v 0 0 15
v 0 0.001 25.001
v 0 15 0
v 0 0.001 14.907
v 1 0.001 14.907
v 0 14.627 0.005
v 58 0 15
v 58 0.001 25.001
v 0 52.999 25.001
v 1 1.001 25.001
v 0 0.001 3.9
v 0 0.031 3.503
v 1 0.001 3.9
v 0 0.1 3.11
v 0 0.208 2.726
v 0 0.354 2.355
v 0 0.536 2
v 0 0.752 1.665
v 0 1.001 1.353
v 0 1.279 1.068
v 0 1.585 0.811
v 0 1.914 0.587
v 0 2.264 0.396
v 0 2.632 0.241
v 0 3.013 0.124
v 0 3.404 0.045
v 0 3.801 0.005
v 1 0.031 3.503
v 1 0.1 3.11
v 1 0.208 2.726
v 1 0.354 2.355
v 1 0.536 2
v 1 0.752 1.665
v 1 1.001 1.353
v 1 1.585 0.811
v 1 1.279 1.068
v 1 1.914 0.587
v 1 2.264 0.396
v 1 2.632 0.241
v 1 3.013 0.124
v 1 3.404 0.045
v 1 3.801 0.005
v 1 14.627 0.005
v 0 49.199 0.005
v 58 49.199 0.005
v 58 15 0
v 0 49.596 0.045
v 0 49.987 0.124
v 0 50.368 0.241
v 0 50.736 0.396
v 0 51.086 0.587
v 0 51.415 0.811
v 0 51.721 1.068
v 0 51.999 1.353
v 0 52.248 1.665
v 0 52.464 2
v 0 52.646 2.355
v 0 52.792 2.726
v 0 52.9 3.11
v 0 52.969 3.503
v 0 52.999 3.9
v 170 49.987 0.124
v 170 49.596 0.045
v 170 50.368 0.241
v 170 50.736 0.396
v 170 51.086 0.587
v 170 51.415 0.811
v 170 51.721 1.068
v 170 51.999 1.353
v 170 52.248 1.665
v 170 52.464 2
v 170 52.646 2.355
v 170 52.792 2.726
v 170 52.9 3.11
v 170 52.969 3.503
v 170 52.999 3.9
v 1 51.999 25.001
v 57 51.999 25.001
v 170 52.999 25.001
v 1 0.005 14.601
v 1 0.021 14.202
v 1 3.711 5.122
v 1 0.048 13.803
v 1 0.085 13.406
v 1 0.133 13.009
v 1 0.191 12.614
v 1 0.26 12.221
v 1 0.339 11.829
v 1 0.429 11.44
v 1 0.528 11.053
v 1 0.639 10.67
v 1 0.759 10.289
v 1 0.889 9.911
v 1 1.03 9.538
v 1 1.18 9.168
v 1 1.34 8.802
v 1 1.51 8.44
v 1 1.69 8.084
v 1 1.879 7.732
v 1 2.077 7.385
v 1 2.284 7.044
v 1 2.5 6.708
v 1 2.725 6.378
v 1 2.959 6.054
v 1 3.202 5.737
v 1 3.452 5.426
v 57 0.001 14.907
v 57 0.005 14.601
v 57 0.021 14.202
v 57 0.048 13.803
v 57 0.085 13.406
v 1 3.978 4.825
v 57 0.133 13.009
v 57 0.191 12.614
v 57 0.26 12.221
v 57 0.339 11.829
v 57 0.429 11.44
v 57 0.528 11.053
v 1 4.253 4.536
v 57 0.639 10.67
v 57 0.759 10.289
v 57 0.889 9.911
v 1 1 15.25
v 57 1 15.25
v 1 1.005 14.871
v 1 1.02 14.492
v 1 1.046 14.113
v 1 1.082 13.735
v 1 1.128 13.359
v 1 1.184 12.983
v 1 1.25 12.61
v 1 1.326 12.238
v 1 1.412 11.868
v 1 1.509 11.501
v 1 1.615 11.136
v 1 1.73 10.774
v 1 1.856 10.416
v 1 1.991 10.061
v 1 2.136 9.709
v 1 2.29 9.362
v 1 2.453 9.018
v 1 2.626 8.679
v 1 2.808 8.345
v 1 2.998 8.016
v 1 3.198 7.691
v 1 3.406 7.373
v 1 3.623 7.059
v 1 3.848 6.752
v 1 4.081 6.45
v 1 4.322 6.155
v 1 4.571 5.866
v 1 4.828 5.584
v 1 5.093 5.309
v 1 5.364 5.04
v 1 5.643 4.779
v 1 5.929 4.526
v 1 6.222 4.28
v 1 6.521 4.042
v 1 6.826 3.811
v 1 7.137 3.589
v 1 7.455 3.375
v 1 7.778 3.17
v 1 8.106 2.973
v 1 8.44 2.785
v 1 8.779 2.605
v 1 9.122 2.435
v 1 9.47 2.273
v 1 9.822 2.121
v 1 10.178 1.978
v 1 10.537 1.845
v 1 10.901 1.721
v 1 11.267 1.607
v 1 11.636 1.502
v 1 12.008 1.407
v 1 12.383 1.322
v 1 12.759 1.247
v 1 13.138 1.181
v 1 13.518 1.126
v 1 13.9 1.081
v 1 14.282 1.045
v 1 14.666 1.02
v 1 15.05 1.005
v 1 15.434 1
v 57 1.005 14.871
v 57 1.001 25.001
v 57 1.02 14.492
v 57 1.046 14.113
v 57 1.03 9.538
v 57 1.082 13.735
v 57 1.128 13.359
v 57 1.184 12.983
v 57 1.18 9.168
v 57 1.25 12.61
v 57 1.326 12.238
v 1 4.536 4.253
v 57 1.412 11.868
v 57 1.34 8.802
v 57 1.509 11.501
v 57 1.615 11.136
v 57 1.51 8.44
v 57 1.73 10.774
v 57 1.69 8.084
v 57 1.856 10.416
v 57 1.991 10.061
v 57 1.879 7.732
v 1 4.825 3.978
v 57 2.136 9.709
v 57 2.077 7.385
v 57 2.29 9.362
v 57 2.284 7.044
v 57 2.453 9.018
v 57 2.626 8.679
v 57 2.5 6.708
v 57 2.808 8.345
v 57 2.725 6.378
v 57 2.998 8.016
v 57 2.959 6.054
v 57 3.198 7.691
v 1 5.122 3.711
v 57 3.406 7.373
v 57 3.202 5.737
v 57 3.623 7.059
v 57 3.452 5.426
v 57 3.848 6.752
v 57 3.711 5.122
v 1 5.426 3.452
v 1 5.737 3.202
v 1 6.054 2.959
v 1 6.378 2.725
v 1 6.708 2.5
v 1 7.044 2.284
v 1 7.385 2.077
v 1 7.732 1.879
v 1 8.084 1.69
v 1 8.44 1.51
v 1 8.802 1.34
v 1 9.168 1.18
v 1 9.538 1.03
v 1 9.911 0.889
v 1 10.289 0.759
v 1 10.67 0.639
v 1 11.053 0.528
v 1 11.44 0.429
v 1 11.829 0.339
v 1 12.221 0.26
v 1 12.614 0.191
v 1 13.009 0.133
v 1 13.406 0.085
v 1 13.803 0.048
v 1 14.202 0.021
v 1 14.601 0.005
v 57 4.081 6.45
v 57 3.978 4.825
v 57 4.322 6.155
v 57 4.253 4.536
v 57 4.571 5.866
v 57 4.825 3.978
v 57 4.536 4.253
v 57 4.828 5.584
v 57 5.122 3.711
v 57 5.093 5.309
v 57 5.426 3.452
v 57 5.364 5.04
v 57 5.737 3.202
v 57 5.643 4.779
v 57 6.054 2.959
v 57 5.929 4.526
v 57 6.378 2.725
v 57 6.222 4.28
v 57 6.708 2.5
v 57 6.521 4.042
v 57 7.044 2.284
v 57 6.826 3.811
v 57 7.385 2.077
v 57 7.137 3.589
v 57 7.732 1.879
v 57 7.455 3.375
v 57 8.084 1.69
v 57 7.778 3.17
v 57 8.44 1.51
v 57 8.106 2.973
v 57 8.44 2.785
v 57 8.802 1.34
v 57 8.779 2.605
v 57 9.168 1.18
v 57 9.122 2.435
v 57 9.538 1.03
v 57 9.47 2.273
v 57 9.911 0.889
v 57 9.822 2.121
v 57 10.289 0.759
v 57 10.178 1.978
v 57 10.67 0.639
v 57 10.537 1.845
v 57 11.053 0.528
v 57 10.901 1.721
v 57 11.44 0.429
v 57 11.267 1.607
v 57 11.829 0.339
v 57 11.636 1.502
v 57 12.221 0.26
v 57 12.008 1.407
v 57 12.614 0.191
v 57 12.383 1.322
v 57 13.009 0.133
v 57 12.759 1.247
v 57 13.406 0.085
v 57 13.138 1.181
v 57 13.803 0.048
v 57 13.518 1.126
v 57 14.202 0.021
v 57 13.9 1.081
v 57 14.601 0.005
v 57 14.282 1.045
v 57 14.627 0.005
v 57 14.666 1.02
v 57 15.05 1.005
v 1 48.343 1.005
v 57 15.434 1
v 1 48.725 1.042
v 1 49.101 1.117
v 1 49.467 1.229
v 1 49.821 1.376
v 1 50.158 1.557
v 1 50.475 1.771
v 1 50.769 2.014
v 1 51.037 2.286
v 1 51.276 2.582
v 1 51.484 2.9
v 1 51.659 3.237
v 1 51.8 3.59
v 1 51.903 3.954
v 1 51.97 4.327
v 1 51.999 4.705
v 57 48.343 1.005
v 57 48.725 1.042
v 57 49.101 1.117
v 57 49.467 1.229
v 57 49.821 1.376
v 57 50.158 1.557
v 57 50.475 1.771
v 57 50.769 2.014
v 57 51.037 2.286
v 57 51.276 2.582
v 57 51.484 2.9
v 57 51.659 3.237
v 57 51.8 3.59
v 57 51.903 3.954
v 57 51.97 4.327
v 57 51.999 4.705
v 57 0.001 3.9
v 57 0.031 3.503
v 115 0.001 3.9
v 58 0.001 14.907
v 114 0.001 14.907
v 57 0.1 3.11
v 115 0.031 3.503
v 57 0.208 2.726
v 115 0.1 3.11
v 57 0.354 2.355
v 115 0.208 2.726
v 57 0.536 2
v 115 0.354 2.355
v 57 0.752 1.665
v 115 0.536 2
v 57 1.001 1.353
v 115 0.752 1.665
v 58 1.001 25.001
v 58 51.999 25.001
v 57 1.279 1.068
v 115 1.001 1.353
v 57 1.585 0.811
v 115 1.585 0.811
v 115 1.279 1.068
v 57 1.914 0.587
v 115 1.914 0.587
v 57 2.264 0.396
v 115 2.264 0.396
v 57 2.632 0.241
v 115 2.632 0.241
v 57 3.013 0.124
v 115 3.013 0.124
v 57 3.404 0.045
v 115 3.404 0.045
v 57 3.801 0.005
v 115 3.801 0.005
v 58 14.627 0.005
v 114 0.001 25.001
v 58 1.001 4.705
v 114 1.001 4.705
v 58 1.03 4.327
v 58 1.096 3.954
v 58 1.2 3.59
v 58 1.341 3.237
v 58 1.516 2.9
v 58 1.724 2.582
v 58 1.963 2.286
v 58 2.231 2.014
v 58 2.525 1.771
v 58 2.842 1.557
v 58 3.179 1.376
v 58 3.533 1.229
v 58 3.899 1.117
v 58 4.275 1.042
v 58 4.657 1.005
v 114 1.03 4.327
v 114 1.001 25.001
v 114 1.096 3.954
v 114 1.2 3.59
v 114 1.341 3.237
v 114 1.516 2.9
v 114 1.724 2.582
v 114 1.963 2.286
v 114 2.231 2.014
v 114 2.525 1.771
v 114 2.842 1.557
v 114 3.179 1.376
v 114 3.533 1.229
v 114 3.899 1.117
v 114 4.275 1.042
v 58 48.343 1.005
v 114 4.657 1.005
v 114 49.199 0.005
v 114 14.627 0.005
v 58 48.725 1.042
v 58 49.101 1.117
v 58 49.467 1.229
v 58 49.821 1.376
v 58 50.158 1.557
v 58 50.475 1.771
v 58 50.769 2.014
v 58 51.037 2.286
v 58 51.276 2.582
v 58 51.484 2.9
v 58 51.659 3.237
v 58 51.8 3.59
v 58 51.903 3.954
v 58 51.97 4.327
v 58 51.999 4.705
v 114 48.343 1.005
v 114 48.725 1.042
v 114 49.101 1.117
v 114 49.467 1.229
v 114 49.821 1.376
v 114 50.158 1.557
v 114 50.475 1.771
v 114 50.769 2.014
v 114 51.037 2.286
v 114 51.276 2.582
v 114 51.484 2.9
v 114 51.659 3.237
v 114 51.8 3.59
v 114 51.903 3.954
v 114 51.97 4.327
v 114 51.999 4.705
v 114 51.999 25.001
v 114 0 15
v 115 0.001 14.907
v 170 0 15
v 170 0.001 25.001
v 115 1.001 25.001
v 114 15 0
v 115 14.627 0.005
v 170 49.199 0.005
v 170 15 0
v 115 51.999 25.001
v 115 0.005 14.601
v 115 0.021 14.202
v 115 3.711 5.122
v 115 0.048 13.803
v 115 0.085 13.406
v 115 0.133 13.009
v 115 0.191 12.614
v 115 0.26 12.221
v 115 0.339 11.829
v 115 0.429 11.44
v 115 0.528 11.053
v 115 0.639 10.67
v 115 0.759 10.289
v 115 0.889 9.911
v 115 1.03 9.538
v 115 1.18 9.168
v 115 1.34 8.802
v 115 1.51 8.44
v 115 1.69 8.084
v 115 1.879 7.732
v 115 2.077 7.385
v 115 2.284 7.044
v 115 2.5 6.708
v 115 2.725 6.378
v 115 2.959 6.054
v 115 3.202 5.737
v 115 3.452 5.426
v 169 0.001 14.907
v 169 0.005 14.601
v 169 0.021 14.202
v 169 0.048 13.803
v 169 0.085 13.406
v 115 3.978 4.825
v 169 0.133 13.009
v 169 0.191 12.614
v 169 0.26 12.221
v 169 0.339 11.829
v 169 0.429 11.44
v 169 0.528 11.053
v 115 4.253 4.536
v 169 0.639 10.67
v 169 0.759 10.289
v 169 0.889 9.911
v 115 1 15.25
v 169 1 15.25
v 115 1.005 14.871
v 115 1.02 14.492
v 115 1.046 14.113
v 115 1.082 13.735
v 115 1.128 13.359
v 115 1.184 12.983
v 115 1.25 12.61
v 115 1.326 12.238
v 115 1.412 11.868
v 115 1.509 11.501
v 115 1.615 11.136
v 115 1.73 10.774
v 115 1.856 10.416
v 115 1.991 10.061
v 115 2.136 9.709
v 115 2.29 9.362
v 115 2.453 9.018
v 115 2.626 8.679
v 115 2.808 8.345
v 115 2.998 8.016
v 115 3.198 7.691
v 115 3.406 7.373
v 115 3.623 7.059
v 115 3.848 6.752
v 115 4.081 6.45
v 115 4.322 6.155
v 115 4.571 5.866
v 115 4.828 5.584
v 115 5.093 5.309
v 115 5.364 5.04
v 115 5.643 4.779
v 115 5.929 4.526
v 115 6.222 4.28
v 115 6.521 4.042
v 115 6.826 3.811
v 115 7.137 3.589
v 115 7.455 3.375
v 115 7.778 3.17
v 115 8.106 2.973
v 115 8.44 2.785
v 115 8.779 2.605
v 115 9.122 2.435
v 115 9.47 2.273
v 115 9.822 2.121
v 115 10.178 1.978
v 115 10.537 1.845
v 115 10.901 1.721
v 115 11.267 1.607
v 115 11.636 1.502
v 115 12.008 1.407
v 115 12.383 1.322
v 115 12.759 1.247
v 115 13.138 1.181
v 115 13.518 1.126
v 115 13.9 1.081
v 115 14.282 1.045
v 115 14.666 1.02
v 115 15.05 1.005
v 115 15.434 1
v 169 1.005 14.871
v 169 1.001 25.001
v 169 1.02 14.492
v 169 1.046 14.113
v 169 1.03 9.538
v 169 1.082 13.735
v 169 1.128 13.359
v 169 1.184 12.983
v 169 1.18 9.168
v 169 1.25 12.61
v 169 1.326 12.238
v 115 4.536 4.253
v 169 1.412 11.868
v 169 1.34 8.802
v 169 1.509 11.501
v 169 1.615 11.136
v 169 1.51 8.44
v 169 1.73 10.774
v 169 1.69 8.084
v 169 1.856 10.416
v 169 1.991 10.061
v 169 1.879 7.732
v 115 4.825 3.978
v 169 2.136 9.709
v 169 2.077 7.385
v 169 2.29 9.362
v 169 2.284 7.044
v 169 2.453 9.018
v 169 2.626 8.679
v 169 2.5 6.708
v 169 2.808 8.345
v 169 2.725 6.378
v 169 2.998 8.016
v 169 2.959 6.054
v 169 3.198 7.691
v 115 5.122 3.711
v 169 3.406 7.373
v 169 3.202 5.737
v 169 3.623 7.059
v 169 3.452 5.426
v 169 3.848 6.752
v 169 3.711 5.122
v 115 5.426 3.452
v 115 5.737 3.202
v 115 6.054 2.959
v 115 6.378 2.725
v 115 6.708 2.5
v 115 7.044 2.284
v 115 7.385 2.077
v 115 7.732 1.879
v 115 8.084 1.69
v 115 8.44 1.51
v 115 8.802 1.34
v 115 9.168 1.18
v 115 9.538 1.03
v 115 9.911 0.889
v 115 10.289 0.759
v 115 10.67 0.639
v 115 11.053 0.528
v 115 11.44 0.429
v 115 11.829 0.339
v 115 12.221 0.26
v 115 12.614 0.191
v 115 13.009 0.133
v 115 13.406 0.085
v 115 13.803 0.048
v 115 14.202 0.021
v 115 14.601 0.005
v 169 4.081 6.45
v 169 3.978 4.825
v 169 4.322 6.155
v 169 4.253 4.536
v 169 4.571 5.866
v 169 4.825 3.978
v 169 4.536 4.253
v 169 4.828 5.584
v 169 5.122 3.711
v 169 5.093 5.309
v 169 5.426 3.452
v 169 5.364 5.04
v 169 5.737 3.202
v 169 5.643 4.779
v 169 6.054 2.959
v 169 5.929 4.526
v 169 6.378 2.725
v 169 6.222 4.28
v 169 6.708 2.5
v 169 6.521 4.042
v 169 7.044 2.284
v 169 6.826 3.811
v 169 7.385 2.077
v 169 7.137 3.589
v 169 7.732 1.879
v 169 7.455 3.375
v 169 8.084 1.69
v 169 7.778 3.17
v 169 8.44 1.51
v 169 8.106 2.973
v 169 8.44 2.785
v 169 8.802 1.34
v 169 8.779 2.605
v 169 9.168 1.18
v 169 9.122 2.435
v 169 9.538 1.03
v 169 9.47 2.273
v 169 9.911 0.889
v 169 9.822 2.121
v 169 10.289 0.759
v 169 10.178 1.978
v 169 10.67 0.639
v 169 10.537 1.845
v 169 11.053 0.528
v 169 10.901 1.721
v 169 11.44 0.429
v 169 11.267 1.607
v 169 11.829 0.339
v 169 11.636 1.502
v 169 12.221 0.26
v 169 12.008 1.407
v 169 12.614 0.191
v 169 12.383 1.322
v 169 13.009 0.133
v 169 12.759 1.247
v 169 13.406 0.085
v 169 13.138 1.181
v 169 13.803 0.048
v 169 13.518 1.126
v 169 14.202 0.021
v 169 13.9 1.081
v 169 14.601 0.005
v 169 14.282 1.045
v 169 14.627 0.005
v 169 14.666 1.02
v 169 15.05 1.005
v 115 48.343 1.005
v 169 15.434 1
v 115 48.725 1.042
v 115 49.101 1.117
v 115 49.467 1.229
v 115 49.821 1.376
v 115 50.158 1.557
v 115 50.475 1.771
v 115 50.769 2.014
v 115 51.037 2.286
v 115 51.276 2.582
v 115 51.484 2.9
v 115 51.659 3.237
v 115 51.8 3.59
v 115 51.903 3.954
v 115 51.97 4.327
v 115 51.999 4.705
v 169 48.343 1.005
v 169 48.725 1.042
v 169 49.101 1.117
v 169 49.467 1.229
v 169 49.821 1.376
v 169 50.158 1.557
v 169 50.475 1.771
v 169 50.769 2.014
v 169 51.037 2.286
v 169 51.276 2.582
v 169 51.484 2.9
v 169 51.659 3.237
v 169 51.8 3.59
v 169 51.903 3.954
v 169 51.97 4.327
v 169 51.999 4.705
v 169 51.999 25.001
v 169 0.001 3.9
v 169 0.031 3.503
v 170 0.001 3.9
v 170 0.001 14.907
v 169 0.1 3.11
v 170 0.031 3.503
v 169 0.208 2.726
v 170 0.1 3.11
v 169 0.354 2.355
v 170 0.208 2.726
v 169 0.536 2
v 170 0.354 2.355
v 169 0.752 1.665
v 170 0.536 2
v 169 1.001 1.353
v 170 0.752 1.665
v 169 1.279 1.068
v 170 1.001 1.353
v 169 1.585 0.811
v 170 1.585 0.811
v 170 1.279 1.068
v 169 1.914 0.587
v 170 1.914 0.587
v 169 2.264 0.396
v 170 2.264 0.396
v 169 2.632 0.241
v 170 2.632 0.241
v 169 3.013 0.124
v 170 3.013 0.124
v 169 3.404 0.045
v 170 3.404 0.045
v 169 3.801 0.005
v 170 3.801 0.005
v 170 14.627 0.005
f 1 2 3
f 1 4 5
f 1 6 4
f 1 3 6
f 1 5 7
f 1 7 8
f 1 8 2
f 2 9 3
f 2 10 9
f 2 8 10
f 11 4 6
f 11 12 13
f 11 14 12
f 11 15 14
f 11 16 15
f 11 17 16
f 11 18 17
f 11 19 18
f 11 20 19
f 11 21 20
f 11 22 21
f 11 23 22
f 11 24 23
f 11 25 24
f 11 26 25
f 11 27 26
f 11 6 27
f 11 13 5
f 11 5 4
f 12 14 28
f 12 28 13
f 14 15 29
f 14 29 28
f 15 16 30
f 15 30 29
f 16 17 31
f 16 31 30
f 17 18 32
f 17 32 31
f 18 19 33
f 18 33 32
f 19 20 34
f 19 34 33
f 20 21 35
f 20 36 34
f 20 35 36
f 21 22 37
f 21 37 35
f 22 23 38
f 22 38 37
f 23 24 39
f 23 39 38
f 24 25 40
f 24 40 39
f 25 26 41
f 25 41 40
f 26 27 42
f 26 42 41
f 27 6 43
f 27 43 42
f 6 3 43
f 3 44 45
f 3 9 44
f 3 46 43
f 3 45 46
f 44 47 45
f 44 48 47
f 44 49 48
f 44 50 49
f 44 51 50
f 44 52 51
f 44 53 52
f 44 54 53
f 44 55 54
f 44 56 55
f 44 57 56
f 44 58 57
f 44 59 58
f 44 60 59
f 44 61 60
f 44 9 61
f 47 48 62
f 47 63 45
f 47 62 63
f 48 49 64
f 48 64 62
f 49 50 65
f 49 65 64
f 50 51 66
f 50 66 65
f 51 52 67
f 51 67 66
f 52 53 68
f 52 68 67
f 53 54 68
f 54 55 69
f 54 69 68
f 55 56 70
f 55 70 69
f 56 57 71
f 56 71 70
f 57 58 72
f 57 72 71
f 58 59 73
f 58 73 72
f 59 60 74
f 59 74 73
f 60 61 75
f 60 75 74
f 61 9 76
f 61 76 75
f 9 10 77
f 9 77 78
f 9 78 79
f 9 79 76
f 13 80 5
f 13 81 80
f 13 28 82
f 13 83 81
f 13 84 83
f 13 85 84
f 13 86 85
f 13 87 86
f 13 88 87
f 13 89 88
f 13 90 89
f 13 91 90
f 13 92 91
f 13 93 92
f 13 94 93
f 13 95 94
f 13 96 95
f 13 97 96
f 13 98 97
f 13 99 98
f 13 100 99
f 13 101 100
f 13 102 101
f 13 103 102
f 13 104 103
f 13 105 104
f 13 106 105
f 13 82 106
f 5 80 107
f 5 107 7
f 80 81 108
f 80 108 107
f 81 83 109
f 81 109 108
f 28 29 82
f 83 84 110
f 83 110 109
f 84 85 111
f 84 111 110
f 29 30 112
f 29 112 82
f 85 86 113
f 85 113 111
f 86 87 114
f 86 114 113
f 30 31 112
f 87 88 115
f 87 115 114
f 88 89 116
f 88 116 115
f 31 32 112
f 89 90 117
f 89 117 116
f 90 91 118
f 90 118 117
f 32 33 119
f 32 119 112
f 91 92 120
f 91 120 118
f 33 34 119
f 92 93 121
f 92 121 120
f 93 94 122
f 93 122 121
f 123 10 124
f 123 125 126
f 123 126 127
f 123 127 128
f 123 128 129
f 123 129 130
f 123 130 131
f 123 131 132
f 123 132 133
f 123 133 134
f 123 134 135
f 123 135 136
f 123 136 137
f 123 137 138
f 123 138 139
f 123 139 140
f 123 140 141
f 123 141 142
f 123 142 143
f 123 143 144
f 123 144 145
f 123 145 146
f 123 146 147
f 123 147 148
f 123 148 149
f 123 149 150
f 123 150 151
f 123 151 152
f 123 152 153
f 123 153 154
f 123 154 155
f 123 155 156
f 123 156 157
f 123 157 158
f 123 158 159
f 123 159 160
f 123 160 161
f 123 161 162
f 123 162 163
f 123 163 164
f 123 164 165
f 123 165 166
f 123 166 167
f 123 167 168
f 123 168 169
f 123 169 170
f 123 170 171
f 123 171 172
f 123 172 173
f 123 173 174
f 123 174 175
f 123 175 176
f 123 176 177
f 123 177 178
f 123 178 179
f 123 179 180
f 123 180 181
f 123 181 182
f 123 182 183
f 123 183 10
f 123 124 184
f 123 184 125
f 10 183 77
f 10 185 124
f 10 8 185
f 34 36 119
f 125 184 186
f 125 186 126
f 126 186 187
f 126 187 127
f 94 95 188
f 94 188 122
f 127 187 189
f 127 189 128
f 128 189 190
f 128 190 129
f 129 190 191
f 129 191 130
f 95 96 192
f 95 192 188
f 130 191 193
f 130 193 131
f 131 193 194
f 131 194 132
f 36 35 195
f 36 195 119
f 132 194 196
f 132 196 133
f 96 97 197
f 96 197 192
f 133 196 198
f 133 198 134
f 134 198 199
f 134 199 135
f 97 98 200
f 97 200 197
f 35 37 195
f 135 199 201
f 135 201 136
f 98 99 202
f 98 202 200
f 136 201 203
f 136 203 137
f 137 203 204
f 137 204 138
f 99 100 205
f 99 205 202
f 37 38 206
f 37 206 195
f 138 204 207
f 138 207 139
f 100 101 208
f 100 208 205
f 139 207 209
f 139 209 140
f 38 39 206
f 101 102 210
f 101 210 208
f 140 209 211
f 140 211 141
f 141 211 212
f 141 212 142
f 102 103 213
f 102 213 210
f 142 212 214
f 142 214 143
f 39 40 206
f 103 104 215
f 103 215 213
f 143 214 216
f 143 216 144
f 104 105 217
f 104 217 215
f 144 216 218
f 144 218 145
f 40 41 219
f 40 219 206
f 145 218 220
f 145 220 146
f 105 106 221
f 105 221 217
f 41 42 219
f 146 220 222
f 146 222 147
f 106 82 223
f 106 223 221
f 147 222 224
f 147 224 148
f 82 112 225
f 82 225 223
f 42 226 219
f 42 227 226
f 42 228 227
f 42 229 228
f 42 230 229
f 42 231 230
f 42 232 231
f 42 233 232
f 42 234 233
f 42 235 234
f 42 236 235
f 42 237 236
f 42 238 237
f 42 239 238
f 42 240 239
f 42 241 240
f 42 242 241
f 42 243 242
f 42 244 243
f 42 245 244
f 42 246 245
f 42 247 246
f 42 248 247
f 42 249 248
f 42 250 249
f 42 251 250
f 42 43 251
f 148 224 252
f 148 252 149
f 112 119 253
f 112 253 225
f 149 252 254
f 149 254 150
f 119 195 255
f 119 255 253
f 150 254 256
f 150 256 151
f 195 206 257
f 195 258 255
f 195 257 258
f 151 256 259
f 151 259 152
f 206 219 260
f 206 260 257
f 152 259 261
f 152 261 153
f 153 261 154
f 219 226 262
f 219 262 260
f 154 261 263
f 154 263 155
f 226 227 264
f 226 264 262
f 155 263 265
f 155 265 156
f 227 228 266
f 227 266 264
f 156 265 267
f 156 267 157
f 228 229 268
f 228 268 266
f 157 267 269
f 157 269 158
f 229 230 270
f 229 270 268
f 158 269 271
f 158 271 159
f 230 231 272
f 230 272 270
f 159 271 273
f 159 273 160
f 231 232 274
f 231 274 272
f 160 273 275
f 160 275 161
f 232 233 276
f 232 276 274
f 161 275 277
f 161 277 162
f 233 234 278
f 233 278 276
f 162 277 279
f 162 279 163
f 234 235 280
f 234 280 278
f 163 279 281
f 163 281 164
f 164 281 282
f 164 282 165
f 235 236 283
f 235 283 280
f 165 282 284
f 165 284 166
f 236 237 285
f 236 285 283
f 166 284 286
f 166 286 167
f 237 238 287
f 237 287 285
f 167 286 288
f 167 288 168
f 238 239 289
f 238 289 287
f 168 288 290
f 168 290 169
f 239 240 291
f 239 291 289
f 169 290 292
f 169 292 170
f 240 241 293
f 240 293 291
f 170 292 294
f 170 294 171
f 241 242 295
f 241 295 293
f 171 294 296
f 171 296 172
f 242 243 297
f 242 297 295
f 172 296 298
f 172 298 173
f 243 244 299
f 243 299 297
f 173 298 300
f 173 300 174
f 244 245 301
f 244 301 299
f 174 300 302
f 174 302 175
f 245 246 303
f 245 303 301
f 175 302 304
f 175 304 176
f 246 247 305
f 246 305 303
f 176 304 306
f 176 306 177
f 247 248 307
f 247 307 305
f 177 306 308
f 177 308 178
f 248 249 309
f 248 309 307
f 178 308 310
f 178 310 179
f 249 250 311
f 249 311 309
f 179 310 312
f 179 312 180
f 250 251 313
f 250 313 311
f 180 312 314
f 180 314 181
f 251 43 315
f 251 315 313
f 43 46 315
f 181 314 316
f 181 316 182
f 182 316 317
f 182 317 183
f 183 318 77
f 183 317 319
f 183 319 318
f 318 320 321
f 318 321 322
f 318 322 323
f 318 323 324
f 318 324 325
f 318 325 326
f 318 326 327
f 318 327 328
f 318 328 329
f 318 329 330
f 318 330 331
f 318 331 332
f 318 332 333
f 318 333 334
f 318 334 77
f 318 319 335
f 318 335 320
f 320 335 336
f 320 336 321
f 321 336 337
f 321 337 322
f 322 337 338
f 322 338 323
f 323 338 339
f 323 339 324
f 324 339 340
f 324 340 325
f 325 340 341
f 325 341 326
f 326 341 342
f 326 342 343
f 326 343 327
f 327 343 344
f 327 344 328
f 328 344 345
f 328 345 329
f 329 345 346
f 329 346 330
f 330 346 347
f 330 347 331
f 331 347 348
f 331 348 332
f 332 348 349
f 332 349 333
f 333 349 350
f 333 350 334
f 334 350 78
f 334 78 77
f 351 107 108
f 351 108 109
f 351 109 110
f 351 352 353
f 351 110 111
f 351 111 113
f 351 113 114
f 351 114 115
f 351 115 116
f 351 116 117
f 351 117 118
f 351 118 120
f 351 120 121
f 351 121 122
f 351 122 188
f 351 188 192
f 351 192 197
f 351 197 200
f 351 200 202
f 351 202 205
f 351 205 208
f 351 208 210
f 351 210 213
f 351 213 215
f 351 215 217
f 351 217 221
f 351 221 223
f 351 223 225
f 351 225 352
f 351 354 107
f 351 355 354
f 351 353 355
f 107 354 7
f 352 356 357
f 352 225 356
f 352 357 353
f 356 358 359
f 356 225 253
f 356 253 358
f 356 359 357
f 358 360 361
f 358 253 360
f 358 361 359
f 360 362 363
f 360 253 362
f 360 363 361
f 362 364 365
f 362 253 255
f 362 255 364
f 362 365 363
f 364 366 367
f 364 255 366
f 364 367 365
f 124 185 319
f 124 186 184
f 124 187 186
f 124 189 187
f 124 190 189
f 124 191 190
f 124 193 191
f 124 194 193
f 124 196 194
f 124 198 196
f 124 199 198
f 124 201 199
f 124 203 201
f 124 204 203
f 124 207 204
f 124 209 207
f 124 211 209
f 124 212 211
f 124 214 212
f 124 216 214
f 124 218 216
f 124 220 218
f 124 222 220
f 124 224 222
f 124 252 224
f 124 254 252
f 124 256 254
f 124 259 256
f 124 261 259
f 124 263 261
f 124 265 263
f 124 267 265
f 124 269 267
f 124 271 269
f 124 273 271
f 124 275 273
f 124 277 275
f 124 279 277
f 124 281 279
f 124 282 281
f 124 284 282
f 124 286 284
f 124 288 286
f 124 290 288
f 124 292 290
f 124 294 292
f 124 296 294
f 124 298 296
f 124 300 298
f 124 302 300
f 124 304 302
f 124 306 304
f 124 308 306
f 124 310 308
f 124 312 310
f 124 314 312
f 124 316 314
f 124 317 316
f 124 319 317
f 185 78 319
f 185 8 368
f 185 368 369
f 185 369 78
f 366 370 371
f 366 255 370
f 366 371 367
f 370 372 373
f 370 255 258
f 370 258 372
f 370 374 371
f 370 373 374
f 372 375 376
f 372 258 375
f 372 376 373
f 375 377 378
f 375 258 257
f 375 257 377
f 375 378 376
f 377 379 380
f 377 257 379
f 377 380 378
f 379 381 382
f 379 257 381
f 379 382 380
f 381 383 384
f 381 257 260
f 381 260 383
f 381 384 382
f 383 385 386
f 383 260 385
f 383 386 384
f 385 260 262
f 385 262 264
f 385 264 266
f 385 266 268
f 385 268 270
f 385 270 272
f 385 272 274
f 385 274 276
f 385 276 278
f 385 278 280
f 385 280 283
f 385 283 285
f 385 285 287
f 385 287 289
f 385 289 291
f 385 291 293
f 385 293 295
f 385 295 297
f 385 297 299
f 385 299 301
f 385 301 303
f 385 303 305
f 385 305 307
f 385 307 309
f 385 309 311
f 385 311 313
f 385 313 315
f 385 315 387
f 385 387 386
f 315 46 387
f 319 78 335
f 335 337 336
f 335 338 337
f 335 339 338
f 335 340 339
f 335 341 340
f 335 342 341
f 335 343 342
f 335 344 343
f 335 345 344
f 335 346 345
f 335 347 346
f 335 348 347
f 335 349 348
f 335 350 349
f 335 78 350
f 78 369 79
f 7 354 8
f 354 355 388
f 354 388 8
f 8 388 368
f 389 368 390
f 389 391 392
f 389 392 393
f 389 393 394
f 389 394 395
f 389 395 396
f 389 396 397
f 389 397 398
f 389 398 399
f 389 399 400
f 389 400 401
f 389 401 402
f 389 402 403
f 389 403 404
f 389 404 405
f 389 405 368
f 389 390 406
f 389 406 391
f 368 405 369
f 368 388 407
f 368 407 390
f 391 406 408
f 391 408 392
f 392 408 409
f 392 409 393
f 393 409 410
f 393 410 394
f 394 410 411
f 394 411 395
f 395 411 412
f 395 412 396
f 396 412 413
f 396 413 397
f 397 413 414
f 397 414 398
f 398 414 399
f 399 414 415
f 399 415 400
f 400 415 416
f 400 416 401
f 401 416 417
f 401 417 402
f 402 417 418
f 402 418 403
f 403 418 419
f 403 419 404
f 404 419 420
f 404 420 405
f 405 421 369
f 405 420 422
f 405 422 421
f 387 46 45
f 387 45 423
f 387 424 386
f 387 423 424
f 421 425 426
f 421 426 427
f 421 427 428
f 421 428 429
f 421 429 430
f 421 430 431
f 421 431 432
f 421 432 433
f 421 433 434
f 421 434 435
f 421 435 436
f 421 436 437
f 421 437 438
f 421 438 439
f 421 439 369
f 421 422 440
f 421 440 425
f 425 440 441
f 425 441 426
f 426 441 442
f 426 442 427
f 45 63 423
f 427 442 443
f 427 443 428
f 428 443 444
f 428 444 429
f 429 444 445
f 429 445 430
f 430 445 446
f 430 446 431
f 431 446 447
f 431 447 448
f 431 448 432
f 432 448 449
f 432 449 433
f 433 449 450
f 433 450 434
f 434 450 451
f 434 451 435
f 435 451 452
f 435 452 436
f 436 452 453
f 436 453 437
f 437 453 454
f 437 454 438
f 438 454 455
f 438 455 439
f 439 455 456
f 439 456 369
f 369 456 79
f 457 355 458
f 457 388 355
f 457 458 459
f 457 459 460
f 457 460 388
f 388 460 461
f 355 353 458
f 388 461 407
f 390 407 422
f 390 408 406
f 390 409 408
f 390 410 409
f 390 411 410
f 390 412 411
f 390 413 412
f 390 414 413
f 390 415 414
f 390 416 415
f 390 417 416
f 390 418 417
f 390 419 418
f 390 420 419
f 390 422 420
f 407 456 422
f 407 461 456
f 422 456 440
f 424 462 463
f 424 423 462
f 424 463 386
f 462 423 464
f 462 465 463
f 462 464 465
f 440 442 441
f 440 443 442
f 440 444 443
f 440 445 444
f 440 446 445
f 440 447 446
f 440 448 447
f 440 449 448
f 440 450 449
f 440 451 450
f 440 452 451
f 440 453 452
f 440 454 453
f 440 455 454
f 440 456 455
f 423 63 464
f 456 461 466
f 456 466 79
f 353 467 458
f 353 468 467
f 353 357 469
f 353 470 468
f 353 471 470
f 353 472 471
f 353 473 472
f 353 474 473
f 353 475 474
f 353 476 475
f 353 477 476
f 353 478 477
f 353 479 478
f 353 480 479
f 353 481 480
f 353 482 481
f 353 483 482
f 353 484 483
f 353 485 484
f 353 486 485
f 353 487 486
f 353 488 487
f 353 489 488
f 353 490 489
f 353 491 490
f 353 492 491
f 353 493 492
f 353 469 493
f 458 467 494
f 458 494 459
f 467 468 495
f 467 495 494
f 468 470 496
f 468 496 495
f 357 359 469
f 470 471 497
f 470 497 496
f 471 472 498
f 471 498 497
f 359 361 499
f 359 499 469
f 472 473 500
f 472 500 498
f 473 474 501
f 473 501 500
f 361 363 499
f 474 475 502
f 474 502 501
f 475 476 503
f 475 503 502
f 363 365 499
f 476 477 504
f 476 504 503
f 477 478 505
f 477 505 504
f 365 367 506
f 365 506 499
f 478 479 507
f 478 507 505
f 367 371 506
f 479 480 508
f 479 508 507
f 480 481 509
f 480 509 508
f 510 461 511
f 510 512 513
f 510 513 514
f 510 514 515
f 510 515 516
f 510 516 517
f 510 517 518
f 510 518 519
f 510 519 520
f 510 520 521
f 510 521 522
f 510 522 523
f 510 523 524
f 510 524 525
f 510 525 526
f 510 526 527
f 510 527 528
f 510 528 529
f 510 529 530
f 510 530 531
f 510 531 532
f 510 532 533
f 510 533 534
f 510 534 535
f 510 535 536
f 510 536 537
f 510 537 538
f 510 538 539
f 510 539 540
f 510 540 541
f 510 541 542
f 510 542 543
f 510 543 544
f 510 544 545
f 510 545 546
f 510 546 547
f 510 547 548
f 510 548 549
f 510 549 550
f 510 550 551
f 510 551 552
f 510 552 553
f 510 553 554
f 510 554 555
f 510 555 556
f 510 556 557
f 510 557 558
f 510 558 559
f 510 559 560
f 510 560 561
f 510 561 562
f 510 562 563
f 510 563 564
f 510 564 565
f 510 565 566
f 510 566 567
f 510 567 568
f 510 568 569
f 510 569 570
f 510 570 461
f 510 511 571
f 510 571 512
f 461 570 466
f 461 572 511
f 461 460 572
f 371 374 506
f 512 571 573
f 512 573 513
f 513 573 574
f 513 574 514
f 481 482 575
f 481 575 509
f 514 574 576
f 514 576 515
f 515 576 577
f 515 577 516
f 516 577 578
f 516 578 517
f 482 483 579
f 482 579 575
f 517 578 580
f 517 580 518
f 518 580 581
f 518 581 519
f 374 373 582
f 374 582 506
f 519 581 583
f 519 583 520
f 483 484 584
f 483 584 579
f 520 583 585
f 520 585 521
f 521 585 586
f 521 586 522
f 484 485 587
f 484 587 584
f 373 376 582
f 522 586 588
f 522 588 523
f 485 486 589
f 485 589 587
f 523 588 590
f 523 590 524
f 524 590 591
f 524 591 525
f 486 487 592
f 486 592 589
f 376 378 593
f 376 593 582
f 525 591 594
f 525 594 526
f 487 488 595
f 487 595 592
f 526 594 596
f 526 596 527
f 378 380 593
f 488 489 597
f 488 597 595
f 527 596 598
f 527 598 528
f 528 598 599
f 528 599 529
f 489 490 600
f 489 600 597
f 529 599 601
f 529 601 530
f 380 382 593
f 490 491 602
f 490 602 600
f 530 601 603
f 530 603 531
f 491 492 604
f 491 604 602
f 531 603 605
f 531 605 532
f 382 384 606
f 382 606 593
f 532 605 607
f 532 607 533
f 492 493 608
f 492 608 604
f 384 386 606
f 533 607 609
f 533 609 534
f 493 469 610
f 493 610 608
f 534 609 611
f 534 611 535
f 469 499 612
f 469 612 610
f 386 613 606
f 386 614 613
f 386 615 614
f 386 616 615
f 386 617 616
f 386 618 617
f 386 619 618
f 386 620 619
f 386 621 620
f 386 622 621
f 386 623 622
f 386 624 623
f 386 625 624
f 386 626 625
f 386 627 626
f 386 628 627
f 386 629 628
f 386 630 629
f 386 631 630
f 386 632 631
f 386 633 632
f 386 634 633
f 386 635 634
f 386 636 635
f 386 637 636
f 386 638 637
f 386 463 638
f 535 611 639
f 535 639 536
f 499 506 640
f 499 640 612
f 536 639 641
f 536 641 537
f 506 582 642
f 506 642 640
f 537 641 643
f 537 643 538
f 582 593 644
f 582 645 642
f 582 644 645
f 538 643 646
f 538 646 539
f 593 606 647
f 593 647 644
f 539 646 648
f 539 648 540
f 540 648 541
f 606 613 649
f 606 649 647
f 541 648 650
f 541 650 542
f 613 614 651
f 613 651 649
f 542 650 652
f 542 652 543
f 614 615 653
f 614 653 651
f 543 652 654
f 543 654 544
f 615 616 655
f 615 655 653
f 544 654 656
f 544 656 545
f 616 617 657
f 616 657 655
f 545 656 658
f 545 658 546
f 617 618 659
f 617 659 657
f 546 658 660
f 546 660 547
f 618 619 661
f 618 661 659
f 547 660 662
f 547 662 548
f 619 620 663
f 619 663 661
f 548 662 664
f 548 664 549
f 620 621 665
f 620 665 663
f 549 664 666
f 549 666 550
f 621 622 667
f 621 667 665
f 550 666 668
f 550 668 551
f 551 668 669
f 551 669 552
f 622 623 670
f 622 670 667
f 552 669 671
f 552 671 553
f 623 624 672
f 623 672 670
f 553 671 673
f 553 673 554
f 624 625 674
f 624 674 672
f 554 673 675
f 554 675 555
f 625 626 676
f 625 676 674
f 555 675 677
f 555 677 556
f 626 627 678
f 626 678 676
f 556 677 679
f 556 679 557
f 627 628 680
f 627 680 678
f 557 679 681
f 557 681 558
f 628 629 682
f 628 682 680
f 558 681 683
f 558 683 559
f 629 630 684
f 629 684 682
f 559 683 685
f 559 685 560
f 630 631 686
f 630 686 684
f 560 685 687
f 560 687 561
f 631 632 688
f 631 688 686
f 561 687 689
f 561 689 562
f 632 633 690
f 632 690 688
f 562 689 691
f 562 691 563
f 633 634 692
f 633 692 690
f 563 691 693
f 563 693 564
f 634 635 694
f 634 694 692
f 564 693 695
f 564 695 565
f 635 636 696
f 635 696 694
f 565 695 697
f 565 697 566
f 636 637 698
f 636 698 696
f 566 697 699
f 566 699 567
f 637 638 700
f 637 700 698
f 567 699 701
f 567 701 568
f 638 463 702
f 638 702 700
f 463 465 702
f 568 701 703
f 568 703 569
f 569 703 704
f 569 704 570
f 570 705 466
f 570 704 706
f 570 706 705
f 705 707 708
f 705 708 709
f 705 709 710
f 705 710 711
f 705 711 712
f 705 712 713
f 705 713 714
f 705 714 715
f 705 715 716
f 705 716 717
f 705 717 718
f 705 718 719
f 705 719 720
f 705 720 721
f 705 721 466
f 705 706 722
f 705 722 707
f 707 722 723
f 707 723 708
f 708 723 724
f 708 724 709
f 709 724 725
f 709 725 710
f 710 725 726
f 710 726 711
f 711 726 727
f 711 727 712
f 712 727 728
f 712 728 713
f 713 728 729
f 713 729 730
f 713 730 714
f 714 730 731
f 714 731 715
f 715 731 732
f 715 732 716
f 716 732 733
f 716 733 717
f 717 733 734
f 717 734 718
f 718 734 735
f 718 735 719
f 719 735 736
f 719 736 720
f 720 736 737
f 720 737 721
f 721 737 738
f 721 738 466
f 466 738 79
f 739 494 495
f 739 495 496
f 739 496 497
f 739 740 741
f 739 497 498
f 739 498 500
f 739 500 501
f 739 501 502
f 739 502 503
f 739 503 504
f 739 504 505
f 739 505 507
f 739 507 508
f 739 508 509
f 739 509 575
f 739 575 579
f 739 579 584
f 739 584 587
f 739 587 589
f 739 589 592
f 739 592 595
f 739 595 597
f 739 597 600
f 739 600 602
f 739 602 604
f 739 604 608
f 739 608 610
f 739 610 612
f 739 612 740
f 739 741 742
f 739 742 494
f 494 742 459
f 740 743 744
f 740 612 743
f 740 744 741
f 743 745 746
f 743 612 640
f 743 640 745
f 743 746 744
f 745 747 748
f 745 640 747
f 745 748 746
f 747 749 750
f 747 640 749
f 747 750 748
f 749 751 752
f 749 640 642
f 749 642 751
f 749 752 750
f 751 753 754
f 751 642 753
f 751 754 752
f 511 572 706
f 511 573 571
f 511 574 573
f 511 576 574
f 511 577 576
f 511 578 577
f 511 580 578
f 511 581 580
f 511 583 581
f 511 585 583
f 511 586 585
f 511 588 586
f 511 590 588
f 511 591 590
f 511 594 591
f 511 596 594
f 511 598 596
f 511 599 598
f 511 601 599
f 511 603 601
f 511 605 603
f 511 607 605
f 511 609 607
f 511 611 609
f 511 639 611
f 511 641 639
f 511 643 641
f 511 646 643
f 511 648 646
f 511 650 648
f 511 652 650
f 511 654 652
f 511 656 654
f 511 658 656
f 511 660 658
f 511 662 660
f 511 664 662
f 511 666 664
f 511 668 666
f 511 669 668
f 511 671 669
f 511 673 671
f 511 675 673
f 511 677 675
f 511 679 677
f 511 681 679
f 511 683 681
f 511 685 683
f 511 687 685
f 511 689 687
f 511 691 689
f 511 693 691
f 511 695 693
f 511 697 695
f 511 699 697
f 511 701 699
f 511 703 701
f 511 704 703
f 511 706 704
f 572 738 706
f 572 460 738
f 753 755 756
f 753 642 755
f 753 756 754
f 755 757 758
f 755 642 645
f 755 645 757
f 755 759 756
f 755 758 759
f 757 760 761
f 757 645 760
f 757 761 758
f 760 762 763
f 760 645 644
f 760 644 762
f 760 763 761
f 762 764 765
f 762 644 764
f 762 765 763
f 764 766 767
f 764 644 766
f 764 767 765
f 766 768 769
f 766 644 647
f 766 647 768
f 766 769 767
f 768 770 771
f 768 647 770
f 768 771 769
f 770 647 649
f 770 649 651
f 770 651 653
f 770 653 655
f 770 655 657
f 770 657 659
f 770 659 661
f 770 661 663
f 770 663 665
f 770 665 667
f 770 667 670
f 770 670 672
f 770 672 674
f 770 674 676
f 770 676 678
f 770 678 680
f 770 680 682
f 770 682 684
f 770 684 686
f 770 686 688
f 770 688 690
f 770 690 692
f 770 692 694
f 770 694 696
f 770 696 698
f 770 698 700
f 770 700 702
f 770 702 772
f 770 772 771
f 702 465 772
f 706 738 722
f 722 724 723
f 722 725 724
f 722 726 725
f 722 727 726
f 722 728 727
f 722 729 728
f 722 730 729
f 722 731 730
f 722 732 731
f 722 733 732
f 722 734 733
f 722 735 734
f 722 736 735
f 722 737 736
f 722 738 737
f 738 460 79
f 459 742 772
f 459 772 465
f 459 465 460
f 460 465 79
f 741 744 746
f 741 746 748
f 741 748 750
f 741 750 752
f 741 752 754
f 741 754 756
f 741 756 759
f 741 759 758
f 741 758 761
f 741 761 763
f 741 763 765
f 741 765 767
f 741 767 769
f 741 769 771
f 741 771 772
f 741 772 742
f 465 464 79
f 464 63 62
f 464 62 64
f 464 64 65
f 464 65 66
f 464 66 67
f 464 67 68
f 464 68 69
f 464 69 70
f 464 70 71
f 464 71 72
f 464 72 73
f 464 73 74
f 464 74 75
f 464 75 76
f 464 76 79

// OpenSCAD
// file: mylib.scad
$fa = 1;
$fs = 0.4;
t0 = 1; p=.001; pp = 2*p;

// A hollow box:
// x: length, y: width, z: height, bt: thick
module box(x, y, z, t = t0) {
  difference()
  {
    cube([x, y, z]);
    translate([t,t,t])
    cube([x-2*t, y-2*t, z+p]); // -2*bt or +2*p
  }
}

// alternatively: make a 2D 'ring' and extrude it; see roundedTube()
// then add end cap; see tray()

// duplicate, with translate & rotate:
// suitable inside hull() { ... }
module dup(tr=[0,0,0], rot=[0,0,0]) {
    children(0);
    translate(tr) rotate(rot) children(0);
}

// New implementation: MCAD
module roundedCube(size, r, sidesonly, center) {
  s = is_list(size) ? size : [size,size,size];
  translate(center ? -s/2 : [0,0,0]) {
    if (sidesonly) {
      hull() {
        translate([     r,     r]) cylinder(r=r, h=s[2]);
        translate([     r,s[1]-r]) cylinder(r=r, h=s[2]);
        translate([s[0]-r,     r]) cylinder(r=r, h=s[2]);
        translate([s[0]-r,s[1]-r]) cylinder(r=r, h=s[2]);
      }
    }
    else {
      hull() {
        translate([     r,     r,     r]) sphere(r=r);
        translate([     r,     r,s[2]-r]) sphere(r=r);
        translate([     r,s[1]-r,     r]) sphere(r=r);
        translate([     r,s[1]-r,s[2]-r]) sphere(r=r);
        translate([s[0]-r,     r,     r]) sphere(r=r);
        translate([s[0]-r,     r,s[2]-r]) sphere(r=r);
        translate([s[0]-r,s[1]-r,     r]) sphere(r=r);
        translate([s[0]-r,s[1]-r,s[2]-r]) sphere(r=r);
      }
    }
  }
}

// replace square corner with a rounded corner
// tr: XYZ of corner; rot: orientation of corner;
// rad: radius; e: eccentricity = scale of y;
// t = t0 (thickness) ambient: p
module rc(tr=[0,0,0], rot=[0, 0, 0], q=0, rad=5, t = t0) {
    module pos() {
        translate(tr) rotate(rot) children(0);
    }
    org = [[-p,-p,-p], [-p,p-rad,-p], [-rad+p,-rad+p,-p], [-rad+p,-p,-p]][q];
    add = 
    [[rad, rad, -p], [rad, -rad, -p], [-rad,-rad,-p], [-rad,rad,-p]][q];

    difference() 
    {
        children(0);
        pos() difference() 
        {
        translate(org) cube([rad+pp, rad+pp, t+pp]);
        translate(add) cylinder(t+pp, rad, rad);
        }
    }
}

// test rc
*translate([0, -50, 0]) 
rc([0,00,0], [0, 0, 0], 0, 5) 
rc([0,20,0], [0, 0, 0], 1, 5) 
rc([20,20,0], [0, 0, 0], 2)
rc([20,00,0], [0, 0, 0], 3) 
cube([20, 20, t0]);


// 2D shape: 
// sxy: [dx = sxy, dy = sxy]
// rc:  [(0,0), (0,dy), (dx, dy), (dx, 0)] 
module roundedRect(sxy = 10, rc = 2, k = 0) {
  s = is_list(sxy) ? sxy : [sxy,sxy];
  dx = s[0]; dy = s[1];
  r = is_list(rc) ? rc : [rc, rc, rc, rc];
  intersection()
  {
    hull() {
      translate([r[0],       r[0]]) circle(r=r[0]);
      translate([r[1],    dy-r[1]]) circle(r=r[1]);
      translate([dx-r[2], dy-r[2]]) circle(r=r[2]);
      translate([dx-r[3],    r[3]]) circle(r=r[3]);
   }
   translate([k-p, -p])  square([s[0]+pp, s[1]+pp]);
  }
}


// A Z-extruded roundedRect: (kut across the YZ plane)
// sxy: [dx, dy, dz]
// r: radius (2), k: keep/cut (0), t = thick (t0)
module roundedTube(sxy=10, r = 2, k, t = t0) {
   s = is_list(sxy) ? sxy : [sxy,sxy,sxy];
   dx = s[0]; dy = s[1];
   rs = [dx, dy];
   linear_extrude(height = s[2]) 
   {
   sx = (dx-2*t)/dx; sy = (dy-2*t)/dy;
   dt = k<0 ? 1 +pp : -(1+pp);
   kd = (k+dt)/sx;
   difference() 
    {
    roundedRect(rs, r, k);
    translate([t, t])
    scale([sx, sy])
    roundedRect(rs, r, kd);
   }
  }
}
// test for k:
*translate([0, -60, 0]) rotate([0, -90, 0])
 roundedTube([40, 40, 8], [15, 4,2,2], -15, 1);

// a roundedRect divider across the YZ plane of a box:
// hw: [z,y]; r: radius ([r,r,r,r])
// t: thick (dx = t0)
// k>0 keep bottom/cut top; k<0 cut bottom/keep top
// k == 0 keep all
module div(hw = 10, r = 2, k, t = t0) { 
 translate([t, 0, 0])
 rotate([0, -90])
 linear_extrude(height = t)
 roundedRect(hw, r, k);
}

// a slot shaped hull; (in YZ plane)
// hrt: [h: height, r: radius, t = t0]
// rottr: rotate & translate ([0, -90, 0, tr=[t+p, 0, 0]]) 
module slot(hrt, rott) {
    h=is_undef(hrt[0]) ? 40 : hrt[0];
    r=is_undef(hrt[1]) ?  5 : hrt[1]; 
    t=is_undef(hrt[2]) ? t0 : hrt[2];
    rott = is_undef(rottr) || is_undef(rottr[0]) ? [0, -90, 0] : rottr;
    tr= is_undef(rott[3]) ? [t+p, 0, 0] : rott[3];
    translate(tr) // align after rotate
    rotate(rott)  // ignore rott[3]
    hull() {
      dup([h, 0, 0]) cylinder(h=t+2*p, r=r);
   }
}

// make a slot in the yz plane
// hrt: [h: dz (40), r: slot_radius (5), t: (t0)]
// tr: translate onto wall ([0,0,0])
// rot: rotate ([0, 90, 0])
// sq: [size: radius (2*t), quad: (1)]
module slotify(hrt, tr=[0,0,0], rot, sq) {
    h=is_undef(hrt[0]) ? 40 : hrt[0];
    r=is_undef(hrt[1]) ?  5 : hrt[1]; 
    t=is_undef(hrt[2]) ? t0 : hrt[2];
    module maybe_rc(sqr) {
      if (!is_undef(sqr)) {
        rad = is_undef(sq[0]) ? 2*t : sq[0];
        quad = is_undef(sq[1]) ? 1 : sq[1]; 
        rcr = is_undef(rot) ? [0,-90,0]: rot;
        rc([tr[0]+t, tr[1]+r, h+tr[2]], rcr, 3, rad)
        rc([tr[0]+t, tr[1]-r, h+tr[2]], rcr, 2, rad)
        children();
      } else {
        children();
      }
    } 
    maybe_rc(sq)
    difference()
    {
        children(0);
        translate(tr) slot(hrt, rot); // TODO: rot[3] = tr
    }
}
// main file
$fa = 1;
$fs = 0.4;
t0 = 1; p=.001; pp=2*p;
use<./mylib.scad>

// size: [x: length, y: width_curved, z: height_curved]
// rt: radii of tray [bl, tl, tr, br]
// rc: radii of caps
// k0: cut_end default: cut max(top radii) -> k
module tray(size = 10, rt = 2, rc = 2, k0, t = t0) {
 s = is_list(size) ? size : [size,size,size]; // tube_size
 rm = is_list(rt) ? max(rt[1], rt[2]) : rt;   // round_max
 k = is_undef(k0) ? -rm : k0;
 translate([s[0], 0, 0])
 rotate([0, -90, 0])
 roundedTube([s[2], s[1], s[0]], rt, k, t);

 // endcaps
 hr = s[2];
 hw = [hr, s[1]];  // 2D
 translate([0, 0, 0])      div(hw, rc, k);
 translate([s[0]-t, 0, 0]) div(hw, rc, k);
}

l1 = 57; l2 = 57; l3 = 55; lt = l1+l2+l3; 
assert(lt <= 170, lt);
w = 53; h = 25; r = 15; r2 = 4;
hr = h+r;
hw = [hr, w]; 
rad = [r, r2, r2, r2];
rod = [r2, r2, r2, r2];

// 3 concatenated trays: l1, l2, l3
module tray3() {
translate([0, 0, 0])     tray([l1 + t0, w, hr], rad, rod, -r);
translate([l1, 0, 0])    tray([l2 + t0, w, hr], rod, rod, -r);
translate([l1+l2, 0, 0]) tray([l3 + t0, w, hr], rad, rod, -r);
}
translate([0, 0, 0]) tray3();
*translate([0, w+2, 0]) tray3();
*translate([0, 2*w+4, 0]) tray3();


// short tube, oriented as tray:
*translate([0, -60, 0]) 
 rotate([0, -90, 0])
 roundedTube([40, 53, 8], [15, 4,2,2], -15, 1);
